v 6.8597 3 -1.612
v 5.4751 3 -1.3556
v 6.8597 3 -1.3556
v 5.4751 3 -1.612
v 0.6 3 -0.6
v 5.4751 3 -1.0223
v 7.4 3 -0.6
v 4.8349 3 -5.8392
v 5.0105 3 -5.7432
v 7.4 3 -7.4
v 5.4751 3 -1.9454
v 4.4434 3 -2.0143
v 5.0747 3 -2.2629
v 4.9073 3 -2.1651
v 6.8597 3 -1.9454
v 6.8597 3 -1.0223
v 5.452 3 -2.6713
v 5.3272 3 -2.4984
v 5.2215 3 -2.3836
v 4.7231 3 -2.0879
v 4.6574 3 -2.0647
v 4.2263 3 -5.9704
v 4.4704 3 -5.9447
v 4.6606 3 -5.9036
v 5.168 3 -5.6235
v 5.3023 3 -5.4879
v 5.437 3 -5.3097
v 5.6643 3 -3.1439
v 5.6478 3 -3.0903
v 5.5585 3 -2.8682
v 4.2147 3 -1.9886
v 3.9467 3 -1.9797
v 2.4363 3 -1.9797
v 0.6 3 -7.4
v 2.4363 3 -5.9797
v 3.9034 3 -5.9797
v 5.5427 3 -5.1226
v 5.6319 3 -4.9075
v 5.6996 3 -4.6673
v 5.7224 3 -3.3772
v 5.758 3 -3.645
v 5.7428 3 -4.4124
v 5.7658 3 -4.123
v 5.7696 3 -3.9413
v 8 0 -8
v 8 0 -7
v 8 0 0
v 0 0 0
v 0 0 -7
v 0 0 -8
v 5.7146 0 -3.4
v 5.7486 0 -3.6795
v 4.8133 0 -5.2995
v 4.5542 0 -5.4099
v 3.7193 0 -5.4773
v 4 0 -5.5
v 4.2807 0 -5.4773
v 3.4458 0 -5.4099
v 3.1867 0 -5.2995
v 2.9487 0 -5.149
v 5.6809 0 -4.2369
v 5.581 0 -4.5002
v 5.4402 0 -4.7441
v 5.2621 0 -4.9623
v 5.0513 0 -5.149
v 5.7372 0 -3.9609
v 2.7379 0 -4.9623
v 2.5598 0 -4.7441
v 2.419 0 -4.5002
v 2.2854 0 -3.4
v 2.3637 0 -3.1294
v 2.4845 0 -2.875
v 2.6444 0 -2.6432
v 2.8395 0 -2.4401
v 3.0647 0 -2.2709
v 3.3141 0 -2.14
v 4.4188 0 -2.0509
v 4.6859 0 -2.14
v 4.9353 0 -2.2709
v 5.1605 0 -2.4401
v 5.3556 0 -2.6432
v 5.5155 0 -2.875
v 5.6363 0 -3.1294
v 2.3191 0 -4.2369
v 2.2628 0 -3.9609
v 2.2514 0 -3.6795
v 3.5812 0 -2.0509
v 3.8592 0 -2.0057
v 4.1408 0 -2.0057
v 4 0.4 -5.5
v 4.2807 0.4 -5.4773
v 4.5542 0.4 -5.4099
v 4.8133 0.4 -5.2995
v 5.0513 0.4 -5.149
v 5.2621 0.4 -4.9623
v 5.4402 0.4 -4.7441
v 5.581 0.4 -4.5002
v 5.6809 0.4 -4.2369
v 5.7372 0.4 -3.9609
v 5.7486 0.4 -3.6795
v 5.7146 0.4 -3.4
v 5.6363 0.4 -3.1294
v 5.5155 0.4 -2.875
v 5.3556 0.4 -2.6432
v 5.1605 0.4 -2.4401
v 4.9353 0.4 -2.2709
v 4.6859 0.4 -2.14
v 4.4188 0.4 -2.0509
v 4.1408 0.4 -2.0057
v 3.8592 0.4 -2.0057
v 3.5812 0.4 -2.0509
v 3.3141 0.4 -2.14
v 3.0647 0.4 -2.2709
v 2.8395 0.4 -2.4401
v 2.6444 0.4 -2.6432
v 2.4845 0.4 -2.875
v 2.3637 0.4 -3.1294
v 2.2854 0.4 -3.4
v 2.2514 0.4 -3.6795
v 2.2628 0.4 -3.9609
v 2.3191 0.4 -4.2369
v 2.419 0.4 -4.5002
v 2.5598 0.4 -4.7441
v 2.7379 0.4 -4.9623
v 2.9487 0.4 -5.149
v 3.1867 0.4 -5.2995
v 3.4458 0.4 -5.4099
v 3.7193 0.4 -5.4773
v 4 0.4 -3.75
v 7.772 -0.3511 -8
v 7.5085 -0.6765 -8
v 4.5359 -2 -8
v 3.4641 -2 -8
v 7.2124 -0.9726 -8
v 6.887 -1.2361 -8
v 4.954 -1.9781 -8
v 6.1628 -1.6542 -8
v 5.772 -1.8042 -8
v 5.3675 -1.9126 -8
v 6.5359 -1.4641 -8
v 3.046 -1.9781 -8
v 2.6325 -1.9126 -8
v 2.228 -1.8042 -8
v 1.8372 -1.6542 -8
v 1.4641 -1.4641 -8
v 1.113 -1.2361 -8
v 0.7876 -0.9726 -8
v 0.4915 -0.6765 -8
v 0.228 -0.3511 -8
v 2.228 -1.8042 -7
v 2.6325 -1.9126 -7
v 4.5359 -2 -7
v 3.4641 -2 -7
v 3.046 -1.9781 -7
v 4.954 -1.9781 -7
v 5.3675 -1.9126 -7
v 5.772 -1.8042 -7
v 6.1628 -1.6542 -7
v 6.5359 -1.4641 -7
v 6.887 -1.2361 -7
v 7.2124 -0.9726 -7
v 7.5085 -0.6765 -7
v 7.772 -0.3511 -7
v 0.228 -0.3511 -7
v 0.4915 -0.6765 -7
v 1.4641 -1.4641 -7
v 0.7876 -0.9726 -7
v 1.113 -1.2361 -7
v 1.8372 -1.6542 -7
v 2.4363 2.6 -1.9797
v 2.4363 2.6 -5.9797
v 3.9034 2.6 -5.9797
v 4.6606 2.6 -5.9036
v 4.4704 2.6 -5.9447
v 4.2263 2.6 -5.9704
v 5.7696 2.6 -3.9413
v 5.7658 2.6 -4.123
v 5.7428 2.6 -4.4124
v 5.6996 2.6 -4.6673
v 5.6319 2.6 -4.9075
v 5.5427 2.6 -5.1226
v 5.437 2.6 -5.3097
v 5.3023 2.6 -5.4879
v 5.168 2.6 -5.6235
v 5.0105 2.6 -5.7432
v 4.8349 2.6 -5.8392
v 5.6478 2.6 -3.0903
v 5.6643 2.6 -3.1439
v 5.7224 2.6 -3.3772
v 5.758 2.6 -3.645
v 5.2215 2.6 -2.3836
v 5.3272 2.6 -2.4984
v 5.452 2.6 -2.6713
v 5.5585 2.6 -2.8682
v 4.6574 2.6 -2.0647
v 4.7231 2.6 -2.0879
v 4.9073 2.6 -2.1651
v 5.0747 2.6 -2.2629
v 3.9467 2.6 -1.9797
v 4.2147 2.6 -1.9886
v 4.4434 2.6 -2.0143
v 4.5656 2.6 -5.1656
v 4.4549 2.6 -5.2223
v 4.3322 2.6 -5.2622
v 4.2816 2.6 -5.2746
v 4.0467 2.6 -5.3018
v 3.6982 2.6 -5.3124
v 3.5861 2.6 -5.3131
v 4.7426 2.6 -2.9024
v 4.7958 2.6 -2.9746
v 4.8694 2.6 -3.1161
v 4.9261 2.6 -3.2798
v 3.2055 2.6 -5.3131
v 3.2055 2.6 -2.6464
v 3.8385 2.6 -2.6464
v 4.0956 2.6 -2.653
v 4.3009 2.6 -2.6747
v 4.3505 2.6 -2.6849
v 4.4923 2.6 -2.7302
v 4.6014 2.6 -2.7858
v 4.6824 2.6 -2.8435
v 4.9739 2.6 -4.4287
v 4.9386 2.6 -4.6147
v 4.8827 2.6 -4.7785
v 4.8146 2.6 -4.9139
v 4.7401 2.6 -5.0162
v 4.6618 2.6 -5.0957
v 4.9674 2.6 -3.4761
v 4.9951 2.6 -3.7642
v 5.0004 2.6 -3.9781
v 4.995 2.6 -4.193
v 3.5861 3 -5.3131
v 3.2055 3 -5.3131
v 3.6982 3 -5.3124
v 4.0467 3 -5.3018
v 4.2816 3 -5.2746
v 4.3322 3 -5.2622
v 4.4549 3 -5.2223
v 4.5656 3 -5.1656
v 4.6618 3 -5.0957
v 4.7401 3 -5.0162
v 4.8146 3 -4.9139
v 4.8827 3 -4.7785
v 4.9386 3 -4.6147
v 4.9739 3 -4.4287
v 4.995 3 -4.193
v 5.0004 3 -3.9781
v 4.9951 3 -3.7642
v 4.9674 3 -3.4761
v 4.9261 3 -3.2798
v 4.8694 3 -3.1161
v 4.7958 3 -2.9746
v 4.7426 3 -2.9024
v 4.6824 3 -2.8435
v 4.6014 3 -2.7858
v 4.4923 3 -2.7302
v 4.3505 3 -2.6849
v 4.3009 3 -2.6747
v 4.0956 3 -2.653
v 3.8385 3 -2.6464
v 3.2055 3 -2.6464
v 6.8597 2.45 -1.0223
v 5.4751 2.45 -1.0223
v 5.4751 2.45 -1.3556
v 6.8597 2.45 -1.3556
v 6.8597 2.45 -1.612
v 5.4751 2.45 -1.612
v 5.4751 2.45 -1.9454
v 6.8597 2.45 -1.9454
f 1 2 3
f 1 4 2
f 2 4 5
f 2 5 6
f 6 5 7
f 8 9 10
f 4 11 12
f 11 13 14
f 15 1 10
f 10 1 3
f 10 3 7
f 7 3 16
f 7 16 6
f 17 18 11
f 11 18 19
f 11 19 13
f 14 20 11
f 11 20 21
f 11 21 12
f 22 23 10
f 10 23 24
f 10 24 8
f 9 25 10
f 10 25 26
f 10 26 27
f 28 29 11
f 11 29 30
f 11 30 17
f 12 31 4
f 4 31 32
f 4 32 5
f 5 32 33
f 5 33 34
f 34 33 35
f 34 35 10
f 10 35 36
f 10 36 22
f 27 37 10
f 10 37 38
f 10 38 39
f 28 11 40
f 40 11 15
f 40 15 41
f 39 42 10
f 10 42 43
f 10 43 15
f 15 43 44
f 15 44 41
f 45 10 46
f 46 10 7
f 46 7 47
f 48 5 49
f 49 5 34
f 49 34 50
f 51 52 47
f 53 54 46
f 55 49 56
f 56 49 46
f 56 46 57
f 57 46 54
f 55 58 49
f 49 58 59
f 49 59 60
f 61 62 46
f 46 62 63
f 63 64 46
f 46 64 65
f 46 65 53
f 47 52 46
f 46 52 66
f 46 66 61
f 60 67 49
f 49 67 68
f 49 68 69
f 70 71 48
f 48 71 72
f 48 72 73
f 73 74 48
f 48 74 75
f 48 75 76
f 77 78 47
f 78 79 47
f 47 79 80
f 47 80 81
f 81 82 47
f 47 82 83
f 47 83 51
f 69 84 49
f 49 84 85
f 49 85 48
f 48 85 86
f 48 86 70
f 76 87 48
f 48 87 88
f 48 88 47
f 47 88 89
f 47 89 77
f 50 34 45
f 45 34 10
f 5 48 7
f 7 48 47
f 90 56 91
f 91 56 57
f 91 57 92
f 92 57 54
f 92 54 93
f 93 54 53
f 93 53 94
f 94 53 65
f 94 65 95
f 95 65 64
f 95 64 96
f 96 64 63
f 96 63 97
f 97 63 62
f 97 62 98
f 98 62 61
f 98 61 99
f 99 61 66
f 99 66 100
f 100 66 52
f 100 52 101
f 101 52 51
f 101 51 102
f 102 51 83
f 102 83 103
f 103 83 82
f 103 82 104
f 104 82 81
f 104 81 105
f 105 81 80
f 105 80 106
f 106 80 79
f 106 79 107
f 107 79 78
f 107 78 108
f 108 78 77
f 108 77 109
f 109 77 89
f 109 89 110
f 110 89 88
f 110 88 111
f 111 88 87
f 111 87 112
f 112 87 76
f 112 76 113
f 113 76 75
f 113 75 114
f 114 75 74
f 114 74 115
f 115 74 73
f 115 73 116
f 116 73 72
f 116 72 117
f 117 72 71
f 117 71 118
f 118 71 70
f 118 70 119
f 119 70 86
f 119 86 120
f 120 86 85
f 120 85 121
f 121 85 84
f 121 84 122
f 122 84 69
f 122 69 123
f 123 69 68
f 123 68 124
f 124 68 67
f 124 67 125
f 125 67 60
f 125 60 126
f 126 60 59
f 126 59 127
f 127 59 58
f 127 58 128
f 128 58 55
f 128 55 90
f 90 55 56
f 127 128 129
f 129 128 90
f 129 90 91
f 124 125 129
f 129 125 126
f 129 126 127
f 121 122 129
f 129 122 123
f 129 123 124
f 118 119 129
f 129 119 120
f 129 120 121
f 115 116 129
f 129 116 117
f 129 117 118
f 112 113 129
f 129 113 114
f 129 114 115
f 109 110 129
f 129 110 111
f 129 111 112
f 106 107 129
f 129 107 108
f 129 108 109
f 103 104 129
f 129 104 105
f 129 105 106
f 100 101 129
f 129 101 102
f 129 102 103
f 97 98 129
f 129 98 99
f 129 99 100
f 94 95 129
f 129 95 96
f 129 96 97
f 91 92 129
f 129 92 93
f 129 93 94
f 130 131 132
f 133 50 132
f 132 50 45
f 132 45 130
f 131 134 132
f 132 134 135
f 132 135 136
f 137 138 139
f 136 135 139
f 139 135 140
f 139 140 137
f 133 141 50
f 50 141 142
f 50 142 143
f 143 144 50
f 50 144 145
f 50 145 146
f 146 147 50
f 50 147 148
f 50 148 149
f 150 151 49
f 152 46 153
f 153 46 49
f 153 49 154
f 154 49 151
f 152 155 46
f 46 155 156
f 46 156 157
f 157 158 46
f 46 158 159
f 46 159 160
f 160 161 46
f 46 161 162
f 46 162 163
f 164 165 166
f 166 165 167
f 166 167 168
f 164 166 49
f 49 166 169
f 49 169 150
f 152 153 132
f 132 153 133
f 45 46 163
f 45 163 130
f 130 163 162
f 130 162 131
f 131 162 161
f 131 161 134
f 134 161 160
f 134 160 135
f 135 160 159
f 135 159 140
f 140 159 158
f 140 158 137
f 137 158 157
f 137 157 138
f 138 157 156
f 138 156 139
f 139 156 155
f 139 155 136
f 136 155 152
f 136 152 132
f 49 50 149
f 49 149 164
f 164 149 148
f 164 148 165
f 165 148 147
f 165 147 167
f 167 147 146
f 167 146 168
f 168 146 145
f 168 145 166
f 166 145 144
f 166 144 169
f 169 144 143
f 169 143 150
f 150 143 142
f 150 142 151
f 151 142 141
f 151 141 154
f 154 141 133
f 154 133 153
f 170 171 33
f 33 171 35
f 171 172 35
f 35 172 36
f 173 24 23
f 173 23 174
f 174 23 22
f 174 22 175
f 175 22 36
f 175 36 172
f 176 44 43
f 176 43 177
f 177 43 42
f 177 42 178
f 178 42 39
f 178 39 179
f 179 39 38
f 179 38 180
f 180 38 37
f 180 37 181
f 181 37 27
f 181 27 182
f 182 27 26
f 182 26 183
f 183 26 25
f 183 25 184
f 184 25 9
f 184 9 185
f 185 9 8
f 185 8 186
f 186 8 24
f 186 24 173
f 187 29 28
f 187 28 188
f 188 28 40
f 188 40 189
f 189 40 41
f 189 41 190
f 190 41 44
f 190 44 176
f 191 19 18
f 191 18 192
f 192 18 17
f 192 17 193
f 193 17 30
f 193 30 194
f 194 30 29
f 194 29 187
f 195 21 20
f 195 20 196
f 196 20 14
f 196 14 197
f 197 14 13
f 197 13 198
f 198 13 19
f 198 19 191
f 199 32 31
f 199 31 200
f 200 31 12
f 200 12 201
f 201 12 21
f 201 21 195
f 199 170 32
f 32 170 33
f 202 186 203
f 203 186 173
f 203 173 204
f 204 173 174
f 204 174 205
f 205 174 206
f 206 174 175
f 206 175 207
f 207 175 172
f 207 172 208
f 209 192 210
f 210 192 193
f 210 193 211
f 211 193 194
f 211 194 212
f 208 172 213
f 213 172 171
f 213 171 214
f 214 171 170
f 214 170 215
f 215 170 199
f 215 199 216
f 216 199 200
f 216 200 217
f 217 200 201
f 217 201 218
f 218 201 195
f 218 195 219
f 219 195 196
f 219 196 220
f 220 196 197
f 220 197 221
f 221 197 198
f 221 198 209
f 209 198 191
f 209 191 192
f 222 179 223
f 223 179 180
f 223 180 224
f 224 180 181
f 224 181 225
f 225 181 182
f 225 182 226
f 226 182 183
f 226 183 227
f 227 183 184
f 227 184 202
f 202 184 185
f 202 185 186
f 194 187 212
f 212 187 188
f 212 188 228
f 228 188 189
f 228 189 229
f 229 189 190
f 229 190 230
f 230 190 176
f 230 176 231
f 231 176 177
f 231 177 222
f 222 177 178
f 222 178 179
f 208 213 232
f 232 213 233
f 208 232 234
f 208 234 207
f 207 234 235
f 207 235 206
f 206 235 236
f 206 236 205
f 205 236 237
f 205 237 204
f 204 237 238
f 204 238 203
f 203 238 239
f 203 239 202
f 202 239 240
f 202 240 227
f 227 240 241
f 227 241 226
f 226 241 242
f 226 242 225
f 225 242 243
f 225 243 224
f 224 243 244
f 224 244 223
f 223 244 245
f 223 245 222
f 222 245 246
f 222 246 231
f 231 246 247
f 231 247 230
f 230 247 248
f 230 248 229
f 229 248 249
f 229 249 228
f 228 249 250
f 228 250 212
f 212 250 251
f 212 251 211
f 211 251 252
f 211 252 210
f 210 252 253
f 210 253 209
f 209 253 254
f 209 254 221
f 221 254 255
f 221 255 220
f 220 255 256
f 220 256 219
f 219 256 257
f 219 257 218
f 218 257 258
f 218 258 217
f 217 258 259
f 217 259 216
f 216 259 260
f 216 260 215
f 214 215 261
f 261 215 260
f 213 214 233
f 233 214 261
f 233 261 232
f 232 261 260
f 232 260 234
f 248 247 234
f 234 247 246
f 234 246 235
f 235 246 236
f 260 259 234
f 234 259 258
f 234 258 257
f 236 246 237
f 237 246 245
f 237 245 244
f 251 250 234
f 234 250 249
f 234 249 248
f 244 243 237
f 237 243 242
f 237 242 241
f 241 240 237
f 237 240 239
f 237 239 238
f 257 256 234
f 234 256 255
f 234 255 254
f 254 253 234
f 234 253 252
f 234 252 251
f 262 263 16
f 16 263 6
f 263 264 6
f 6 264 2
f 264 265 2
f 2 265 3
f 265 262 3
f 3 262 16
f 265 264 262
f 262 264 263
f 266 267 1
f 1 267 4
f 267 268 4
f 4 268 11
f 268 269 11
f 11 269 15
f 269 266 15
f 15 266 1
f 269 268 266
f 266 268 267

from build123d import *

# Parameters (mm, degrees)
SKETCH1_W               = 8
SKETCH1_H               = 8
BOSS_EXTRUDE1_DEPTH     = 3
CUT_EXTRUDE1_DEPTH      = 12.704699911
CUT_EXTRUDE1_DEPTH_BACK = 12.704699911
CUT_EXTRUDE2_DEPTH      = 11
SKETCH4_R               = 1.75
CUT_EXTRUDE3_DEPTH      = 0.4
SKETCH5_W               = 8
SKETCH5_H               = 1
BOSS_EXTRUDE2_DEPTH     = 2
FILLET1_R               = 4
CUT_EXTRUDE4_DEPTH      = 0.4
SKETCH7_W               = 1.384615385
SKETCH7_H               = 0.333333334
CUT_EXTRUDE5_DEPTH      = 0.55


with BuildPart() as part:
    # Sketch1 → Boss-Extrude1 (new body)
    with BuildSketch(Plane(origin=(0, 0, 0), x_dir=(1, 0, 0), z_dir=(0, 1, 0))):
        with Locations((4, 4)):
            Rectangle(SKETCH1_W, SKETCH1_H)
    extrude(amount=BOSS_EXTRUDE1_DEPTH)

    # Sketch2 → Cut-Extrude1 (cut, two sides: drawn at the far end of the back side and taken through both)
    with BuildSketch(Plane.XY.offset(-CUT_EXTRUDE1_DEPTH_BACK)):
        Polygon((0, 0), (0.6, 3), (0, 3), align=None)
        Polygon((8, 0), (7.4, 3), (8, 3), align=None)
    extrude(amount=CUT_EXTRUDE1_DEPTH + CUT_EXTRUDE1_DEPTH_BACK, mode=Mode.SUBTRACT)

    # Sketch3 → Cut-Extrude2 (cut)
    with BuildSketch(Plane(origin=(0, 0, 0), x_dir=(0, 0, -1), z_dir=(1, 0, 0))):
        Polygon((0, 0), (0.6, 3), (0, 3), align=None)
        Polygon((8, 3), (7.4, 3), (8, 0), align=None)
    extrude(amount=CUT_EXTRUDE2_DEPTH, mode=Mode.SUBTRACT)

    # Sketch4 → Cut-Extrude3 (cut)
    with BuildSketch(Plane.XZ):
        with Locations(Location((4, -3.75, 0), (0, 0, 270))):
            Circle(SKETCH4_R)
    extrude(amount=-CUT_EXTRUDE3_DEPTH, mode=Mode.SUBTRACT)

    # Sketch5 → Boss-Extrude2 (add)
    with BuildSketch(Plane.XZ):
        with Locations((4, -7.5)):
            Rectangle(SKETCH5_W, SKETCH5_H)
    extrude(amount=BOSS_EXTRUDE2_DEPTH)

    # Fillet1
    # the kernel refuses this fillet: 4 mm, written as the material it takes off along each edge
    with BuildSketch(Plane(origin=(8, -2, -16.660254038), x_dir=(0, 1, 0), z_dir=(0, 0, 1)), Plane(origin=(0, -2, 1.660254038), x_dir=(0, 1, 0), z_dir=(0, 0, -1))) as fillet1_piece_1:
        with BuildLine():
            CenterArc((4, 3.464101615), FILLET1_R, 180, 60)
            Line((0, 3.464101615), (-0.08, 3.464101615))
            Line((-0.08, 3.464101615), (-0.08, 0))
            Line((-0.08, 0), (0, -0.08))
            ThreePointArc((0, -0.08), (1, -0.08), (1.96, -0.069282032))
            Line((1.96, -0.069282032), (2, 0))
        make_face()
    extrude(amount=18.320508076, mode=Mode.SUBTRACT)

    # Sketch6 → Cut-Extrude4 (cut)
    with BuildSketch(Plane(origin=(0, 3, 0), x_dir=(1, 0, 0), z_dir=(0, 1, 0))):
        with BuildLine():
            Line((2.436272881, 5.979723732), (3.903420317, 5.979723732))
            add(Edge.make_bspline(
                [(3.903420317, 5.979723732), (3.943490496, 5.979744505), (4.021516441, 5.979784954), (4.134752515, 5.975087302), (4.240642802, 5.970362082), (4.338883372, 5.960903224), (4.429815049, 5.950988663), (4.51360101, 5.938436084), (4.589711972, 5.922348579), (4.637707501, 5.909661658), (4.660631856, 5.903601937)],
                knots=[0, 0, 0, 0, 1.259756885, 2.453039283, 3.563158368, 4.591894114, 5.55549294, 6.43918076, 7.254497783, 8, 8, 8, 8], degree=3))
            add(Edge.make_bspline(
                [(4.660631856, 5.903601937), (4.689300162, 5.894258489), (4.74612039, 5.87573989), (4.829420592, 5.843292221), (4.908343197, 5.803050568), (4.985816138, 5.760749105), (5.058380803, 5.710732544), (5.129877456, 5.658697008), (5.195666079, 5.598419283), (5.281939397, 5.514177193), (5.380383811, 5.396825298), (5.483519335, 5.241163905), (5.570813292, 5.070304112), (5.630456537, 4.917219685), (5.670729972, 4.787084992), (5.697056277, 4.682749965), (5.719418871, 4.572846322), (5.737778631, 4.457346355), (5.752043635, 4.336250048), (5.762664083, 4.209589679), (5.767837312, 4.07725583), (5.769008616, 3.987205692), (5.769606215, 3.941262194)],
                knots=[0, 0, 0, 0, 0.745524535, 1.477620414, 2.207090574, 2.934465325, 3.657932502, 4.384347339, 5.118673636, 5.861150177, 7.365375624, 8.894729774, 10.468936425, 12.099947606, 12.950091786, 13.83580991, 14.759228729, 15.722225242, 16.726454549, 17.773376212, 18.863978586, 20, 20, 20, 20], degree=3))
            add(Edge.make_bspline(
                [(5.769606215, 3.941262194), (5.768515323, 3.861857727), (5.766405561, 3.708291084), (5.741963835, 3.486695058), (5.70674022, 3.280872561), (5.667035899, 3.152471539), (5.647811343, 3.090300655)],
                knots=[0, 0, 0, 0, 1.103207939, 2.133582005, 3.096293362, 4, 4, 4, 4], degree=3))
            add(Edge.make_bspline(
                [(5.647811343, 3.090300655), (5.635116766, 3.054625647), (5.610144552, 2.98444734), (5.566445051, 2.883214788), (5.519227431, 2.786877042), (5.468100041, 2.695510004), (5.412804571, 2.609524646), (5.353134197, 2.529178156), (5.290013855, 2.453412746), (5.244286819, 2.406778778), (5.221529292, 2.383569886)],
                knots=[0, 0, 0, 0, 1.090884612, 2.145940218, 3.175104604, 4.181306866, 5.161203701, 6.118658341, 7.063689906, 8, 8, 8, 8], degree=3))
            add(Edge.make_bspline(
                [(5.221529292, 2.383569886), (5.184702113, 2.350450915), (5.108759222, 2.282154876), (4.974934842, 2.197635799), (4.823675662, 2.122952418), (4.714264019, 2.084588805), (4.657426727, 2.06465963)],
                knots=[0, 0, 0, 0, 0.908140292, 1.872714733, 2.8949153, 4, 4, 4, 4], degree=3))
            add(Edge.make_bspline(
                [(4.657426727, 2.06465963), (4.634546833, 2.057632533), (4.587060796, 2.043048157), (4.511767003, 2.027471741), (4.431388989, 2.011061834), (4.344999886, 2.001176252), (4.253496453, 1.990751469), (4.156149493, 1.984898536), (4.053296456, 1.980743294), (3.98275208, 1.980068625), (3.946689548, 1.979723732)],
                knots=[0, 0, 0, 0, 0.799129865, 1.658552685, 2.566799617, 3.538529252, 4.561352959, 5.643373779, 6.795284424, 8, 8, 8, 8], degree=3))
            Line((3.946689548, 1.979723732), (2.436272881, 1.979723732))
            Line((2.436272881, 1.979723732), (2.436272881, 5.979723732))
        make_face()
        with BuildLine():
            Line((3.205503651, 5.313057065), (3.205503651, 2.646390399))
            Line((3.205503651, 2.646390399), (3.838516471, 2.646390399))
            add(Edge.make_bspline(
                [(3.838516471, 2.646390399), (3.86709534, 2.646617049), (3.922120581, 2.647053436), (4.001743514, 2.648335709), (4.07491632, 2.651807064), (4.142022322, 2.655402822), (4.202886818, 2.661343643), (4.257774639, 2.667186667), (4.306380252, 2.675360935), (4.336400272, 2.681813595), (4.350535702, 2.684851937)],
                knots=[0, 0, 0, 0, 1.333384787, 2.567275092, 3.714769766, 4.750907381, 5.701951617, 6.567520054, 7.325492842, 8, 8, 8, 8], degree=3))
            add(Edge.make_bspline(
                [(4.350535702, 2.684851937), (4.38364248, 2.693686468), (4.44812575, 2.710893803), (4.538666782, 2.749253907), (4.62059475, 2.795531175), (4.695281698, 2.8511776), (4.762590099, 2.92150181), (4.820046047, 3.011440962), (4.873220012, 3.118706088), (4.909633556, 3.221385639), (4.935771128, 3.313096613), (4.95346412, 3.390071897), (4.967446413, 3.47335137), (4.979473009, 3.562606359), (4.989190784, 3.657722085), (4.995237644, 3.759042029), (4.999364663, 3.866442163), (5.000032135, 3.940189623), (5.000375445, 3.978121168)],
                knots=[0, 0, 0, 0, 1.038686998, 2.023088296, 2.974059649, 3.888265163, 4.839857954, 5.909819677, 7.113156087, 8.466843969, 9.20827164, 10.006482943, 10.861893492, 11.769681931, 12.739021491, 13.762258324, 14.849031541, 16, 16, 16, 16], degree=3))
            add(Edge.make_bspline(
                [(5.000375445, 3.978121168), (5.000034775, 4.01605283), (4.999374834, 4.089533605), (4.995254144, 4.196132914), (4.989241251, 4.29585735), (4.979454269, 4.38883019), (4.967614104, 4.475179926), (4.953468032, 4.554979633), (4.935881696, 4.627705609), (4.909721893, 4.71410541), (4.870064977, 4.811221472), (4.816099655, 4.917402921), (4.749828382, 5.00790436), (4.676605078, 5.08652444), (4.592177372, 5.151224792), (4.498716105, 5.205415106), (4.394186359, 5.247475499), (4.319831067, 5.2653904), (4.281625445, 5.274595527)],
                knots=[0, 0, 0, 0, 1.117996097, 2.165769068, 3.143980016, 4.062055362, 4.920439205, 5.712587309, 6.449616741, 7.124491204, 8.371470382, 9.537068822, 10.625202851, 11.666538334, 12.693249444, 13.747832046, 14.842779399, 16, 16, 16, 16], degree=3))
            add(Edge.make_bspline(
                [(4.281625445, 5.274595527), (4.265088191, 5.27766838), (4.228679487, 5.284433627), (4.168262747, 5.292335475), (4.097380449, 5.298199321), (4.015671249, 5.304185793), (3.923465993, 5.307602683), (3.820378875, 5.311168762), (3.706841263, 5.312386928), (3.627511913, 5.312827267), (3.586112625, 5.313057065)],
                knots=[0, 0, 0, 0, 0.578738571, 1.274160813, 2.095454135, 3.025967819, 4.093109015, 5.270126069, 6.575371698, 8, 8, 8, 8], degree=3))
            Line((3.586112625, 5.313057065), (3.205503651, 5.313057065))
        make_face(mode=Mode.SUBTRACT)
    extrude(amount=-CUT_EXTRUDE4_DEPTH, mode=Mode.SUBTRACT)

    # Sketch7 → Cut-Extrude5 (cut)
    with BuildSketch(Plane(origin=(0, 3, 0), x_dir=(1, 0, 0), z_dir=(0, 1, 0))):
        with Locations((6.167407218, 1.778686134)):
            Rectangle(SKETCH7_W, SKETCH7_H)
        with Locations((6.167407218, 1.188942544)):
            Rectangle(SKETCH7_W, SKETCH7_H)
    extrude(amount=-CUT_EXTRUDE5_DEPTH, mode=Mode.SUBTRACT)


solid = part.part
